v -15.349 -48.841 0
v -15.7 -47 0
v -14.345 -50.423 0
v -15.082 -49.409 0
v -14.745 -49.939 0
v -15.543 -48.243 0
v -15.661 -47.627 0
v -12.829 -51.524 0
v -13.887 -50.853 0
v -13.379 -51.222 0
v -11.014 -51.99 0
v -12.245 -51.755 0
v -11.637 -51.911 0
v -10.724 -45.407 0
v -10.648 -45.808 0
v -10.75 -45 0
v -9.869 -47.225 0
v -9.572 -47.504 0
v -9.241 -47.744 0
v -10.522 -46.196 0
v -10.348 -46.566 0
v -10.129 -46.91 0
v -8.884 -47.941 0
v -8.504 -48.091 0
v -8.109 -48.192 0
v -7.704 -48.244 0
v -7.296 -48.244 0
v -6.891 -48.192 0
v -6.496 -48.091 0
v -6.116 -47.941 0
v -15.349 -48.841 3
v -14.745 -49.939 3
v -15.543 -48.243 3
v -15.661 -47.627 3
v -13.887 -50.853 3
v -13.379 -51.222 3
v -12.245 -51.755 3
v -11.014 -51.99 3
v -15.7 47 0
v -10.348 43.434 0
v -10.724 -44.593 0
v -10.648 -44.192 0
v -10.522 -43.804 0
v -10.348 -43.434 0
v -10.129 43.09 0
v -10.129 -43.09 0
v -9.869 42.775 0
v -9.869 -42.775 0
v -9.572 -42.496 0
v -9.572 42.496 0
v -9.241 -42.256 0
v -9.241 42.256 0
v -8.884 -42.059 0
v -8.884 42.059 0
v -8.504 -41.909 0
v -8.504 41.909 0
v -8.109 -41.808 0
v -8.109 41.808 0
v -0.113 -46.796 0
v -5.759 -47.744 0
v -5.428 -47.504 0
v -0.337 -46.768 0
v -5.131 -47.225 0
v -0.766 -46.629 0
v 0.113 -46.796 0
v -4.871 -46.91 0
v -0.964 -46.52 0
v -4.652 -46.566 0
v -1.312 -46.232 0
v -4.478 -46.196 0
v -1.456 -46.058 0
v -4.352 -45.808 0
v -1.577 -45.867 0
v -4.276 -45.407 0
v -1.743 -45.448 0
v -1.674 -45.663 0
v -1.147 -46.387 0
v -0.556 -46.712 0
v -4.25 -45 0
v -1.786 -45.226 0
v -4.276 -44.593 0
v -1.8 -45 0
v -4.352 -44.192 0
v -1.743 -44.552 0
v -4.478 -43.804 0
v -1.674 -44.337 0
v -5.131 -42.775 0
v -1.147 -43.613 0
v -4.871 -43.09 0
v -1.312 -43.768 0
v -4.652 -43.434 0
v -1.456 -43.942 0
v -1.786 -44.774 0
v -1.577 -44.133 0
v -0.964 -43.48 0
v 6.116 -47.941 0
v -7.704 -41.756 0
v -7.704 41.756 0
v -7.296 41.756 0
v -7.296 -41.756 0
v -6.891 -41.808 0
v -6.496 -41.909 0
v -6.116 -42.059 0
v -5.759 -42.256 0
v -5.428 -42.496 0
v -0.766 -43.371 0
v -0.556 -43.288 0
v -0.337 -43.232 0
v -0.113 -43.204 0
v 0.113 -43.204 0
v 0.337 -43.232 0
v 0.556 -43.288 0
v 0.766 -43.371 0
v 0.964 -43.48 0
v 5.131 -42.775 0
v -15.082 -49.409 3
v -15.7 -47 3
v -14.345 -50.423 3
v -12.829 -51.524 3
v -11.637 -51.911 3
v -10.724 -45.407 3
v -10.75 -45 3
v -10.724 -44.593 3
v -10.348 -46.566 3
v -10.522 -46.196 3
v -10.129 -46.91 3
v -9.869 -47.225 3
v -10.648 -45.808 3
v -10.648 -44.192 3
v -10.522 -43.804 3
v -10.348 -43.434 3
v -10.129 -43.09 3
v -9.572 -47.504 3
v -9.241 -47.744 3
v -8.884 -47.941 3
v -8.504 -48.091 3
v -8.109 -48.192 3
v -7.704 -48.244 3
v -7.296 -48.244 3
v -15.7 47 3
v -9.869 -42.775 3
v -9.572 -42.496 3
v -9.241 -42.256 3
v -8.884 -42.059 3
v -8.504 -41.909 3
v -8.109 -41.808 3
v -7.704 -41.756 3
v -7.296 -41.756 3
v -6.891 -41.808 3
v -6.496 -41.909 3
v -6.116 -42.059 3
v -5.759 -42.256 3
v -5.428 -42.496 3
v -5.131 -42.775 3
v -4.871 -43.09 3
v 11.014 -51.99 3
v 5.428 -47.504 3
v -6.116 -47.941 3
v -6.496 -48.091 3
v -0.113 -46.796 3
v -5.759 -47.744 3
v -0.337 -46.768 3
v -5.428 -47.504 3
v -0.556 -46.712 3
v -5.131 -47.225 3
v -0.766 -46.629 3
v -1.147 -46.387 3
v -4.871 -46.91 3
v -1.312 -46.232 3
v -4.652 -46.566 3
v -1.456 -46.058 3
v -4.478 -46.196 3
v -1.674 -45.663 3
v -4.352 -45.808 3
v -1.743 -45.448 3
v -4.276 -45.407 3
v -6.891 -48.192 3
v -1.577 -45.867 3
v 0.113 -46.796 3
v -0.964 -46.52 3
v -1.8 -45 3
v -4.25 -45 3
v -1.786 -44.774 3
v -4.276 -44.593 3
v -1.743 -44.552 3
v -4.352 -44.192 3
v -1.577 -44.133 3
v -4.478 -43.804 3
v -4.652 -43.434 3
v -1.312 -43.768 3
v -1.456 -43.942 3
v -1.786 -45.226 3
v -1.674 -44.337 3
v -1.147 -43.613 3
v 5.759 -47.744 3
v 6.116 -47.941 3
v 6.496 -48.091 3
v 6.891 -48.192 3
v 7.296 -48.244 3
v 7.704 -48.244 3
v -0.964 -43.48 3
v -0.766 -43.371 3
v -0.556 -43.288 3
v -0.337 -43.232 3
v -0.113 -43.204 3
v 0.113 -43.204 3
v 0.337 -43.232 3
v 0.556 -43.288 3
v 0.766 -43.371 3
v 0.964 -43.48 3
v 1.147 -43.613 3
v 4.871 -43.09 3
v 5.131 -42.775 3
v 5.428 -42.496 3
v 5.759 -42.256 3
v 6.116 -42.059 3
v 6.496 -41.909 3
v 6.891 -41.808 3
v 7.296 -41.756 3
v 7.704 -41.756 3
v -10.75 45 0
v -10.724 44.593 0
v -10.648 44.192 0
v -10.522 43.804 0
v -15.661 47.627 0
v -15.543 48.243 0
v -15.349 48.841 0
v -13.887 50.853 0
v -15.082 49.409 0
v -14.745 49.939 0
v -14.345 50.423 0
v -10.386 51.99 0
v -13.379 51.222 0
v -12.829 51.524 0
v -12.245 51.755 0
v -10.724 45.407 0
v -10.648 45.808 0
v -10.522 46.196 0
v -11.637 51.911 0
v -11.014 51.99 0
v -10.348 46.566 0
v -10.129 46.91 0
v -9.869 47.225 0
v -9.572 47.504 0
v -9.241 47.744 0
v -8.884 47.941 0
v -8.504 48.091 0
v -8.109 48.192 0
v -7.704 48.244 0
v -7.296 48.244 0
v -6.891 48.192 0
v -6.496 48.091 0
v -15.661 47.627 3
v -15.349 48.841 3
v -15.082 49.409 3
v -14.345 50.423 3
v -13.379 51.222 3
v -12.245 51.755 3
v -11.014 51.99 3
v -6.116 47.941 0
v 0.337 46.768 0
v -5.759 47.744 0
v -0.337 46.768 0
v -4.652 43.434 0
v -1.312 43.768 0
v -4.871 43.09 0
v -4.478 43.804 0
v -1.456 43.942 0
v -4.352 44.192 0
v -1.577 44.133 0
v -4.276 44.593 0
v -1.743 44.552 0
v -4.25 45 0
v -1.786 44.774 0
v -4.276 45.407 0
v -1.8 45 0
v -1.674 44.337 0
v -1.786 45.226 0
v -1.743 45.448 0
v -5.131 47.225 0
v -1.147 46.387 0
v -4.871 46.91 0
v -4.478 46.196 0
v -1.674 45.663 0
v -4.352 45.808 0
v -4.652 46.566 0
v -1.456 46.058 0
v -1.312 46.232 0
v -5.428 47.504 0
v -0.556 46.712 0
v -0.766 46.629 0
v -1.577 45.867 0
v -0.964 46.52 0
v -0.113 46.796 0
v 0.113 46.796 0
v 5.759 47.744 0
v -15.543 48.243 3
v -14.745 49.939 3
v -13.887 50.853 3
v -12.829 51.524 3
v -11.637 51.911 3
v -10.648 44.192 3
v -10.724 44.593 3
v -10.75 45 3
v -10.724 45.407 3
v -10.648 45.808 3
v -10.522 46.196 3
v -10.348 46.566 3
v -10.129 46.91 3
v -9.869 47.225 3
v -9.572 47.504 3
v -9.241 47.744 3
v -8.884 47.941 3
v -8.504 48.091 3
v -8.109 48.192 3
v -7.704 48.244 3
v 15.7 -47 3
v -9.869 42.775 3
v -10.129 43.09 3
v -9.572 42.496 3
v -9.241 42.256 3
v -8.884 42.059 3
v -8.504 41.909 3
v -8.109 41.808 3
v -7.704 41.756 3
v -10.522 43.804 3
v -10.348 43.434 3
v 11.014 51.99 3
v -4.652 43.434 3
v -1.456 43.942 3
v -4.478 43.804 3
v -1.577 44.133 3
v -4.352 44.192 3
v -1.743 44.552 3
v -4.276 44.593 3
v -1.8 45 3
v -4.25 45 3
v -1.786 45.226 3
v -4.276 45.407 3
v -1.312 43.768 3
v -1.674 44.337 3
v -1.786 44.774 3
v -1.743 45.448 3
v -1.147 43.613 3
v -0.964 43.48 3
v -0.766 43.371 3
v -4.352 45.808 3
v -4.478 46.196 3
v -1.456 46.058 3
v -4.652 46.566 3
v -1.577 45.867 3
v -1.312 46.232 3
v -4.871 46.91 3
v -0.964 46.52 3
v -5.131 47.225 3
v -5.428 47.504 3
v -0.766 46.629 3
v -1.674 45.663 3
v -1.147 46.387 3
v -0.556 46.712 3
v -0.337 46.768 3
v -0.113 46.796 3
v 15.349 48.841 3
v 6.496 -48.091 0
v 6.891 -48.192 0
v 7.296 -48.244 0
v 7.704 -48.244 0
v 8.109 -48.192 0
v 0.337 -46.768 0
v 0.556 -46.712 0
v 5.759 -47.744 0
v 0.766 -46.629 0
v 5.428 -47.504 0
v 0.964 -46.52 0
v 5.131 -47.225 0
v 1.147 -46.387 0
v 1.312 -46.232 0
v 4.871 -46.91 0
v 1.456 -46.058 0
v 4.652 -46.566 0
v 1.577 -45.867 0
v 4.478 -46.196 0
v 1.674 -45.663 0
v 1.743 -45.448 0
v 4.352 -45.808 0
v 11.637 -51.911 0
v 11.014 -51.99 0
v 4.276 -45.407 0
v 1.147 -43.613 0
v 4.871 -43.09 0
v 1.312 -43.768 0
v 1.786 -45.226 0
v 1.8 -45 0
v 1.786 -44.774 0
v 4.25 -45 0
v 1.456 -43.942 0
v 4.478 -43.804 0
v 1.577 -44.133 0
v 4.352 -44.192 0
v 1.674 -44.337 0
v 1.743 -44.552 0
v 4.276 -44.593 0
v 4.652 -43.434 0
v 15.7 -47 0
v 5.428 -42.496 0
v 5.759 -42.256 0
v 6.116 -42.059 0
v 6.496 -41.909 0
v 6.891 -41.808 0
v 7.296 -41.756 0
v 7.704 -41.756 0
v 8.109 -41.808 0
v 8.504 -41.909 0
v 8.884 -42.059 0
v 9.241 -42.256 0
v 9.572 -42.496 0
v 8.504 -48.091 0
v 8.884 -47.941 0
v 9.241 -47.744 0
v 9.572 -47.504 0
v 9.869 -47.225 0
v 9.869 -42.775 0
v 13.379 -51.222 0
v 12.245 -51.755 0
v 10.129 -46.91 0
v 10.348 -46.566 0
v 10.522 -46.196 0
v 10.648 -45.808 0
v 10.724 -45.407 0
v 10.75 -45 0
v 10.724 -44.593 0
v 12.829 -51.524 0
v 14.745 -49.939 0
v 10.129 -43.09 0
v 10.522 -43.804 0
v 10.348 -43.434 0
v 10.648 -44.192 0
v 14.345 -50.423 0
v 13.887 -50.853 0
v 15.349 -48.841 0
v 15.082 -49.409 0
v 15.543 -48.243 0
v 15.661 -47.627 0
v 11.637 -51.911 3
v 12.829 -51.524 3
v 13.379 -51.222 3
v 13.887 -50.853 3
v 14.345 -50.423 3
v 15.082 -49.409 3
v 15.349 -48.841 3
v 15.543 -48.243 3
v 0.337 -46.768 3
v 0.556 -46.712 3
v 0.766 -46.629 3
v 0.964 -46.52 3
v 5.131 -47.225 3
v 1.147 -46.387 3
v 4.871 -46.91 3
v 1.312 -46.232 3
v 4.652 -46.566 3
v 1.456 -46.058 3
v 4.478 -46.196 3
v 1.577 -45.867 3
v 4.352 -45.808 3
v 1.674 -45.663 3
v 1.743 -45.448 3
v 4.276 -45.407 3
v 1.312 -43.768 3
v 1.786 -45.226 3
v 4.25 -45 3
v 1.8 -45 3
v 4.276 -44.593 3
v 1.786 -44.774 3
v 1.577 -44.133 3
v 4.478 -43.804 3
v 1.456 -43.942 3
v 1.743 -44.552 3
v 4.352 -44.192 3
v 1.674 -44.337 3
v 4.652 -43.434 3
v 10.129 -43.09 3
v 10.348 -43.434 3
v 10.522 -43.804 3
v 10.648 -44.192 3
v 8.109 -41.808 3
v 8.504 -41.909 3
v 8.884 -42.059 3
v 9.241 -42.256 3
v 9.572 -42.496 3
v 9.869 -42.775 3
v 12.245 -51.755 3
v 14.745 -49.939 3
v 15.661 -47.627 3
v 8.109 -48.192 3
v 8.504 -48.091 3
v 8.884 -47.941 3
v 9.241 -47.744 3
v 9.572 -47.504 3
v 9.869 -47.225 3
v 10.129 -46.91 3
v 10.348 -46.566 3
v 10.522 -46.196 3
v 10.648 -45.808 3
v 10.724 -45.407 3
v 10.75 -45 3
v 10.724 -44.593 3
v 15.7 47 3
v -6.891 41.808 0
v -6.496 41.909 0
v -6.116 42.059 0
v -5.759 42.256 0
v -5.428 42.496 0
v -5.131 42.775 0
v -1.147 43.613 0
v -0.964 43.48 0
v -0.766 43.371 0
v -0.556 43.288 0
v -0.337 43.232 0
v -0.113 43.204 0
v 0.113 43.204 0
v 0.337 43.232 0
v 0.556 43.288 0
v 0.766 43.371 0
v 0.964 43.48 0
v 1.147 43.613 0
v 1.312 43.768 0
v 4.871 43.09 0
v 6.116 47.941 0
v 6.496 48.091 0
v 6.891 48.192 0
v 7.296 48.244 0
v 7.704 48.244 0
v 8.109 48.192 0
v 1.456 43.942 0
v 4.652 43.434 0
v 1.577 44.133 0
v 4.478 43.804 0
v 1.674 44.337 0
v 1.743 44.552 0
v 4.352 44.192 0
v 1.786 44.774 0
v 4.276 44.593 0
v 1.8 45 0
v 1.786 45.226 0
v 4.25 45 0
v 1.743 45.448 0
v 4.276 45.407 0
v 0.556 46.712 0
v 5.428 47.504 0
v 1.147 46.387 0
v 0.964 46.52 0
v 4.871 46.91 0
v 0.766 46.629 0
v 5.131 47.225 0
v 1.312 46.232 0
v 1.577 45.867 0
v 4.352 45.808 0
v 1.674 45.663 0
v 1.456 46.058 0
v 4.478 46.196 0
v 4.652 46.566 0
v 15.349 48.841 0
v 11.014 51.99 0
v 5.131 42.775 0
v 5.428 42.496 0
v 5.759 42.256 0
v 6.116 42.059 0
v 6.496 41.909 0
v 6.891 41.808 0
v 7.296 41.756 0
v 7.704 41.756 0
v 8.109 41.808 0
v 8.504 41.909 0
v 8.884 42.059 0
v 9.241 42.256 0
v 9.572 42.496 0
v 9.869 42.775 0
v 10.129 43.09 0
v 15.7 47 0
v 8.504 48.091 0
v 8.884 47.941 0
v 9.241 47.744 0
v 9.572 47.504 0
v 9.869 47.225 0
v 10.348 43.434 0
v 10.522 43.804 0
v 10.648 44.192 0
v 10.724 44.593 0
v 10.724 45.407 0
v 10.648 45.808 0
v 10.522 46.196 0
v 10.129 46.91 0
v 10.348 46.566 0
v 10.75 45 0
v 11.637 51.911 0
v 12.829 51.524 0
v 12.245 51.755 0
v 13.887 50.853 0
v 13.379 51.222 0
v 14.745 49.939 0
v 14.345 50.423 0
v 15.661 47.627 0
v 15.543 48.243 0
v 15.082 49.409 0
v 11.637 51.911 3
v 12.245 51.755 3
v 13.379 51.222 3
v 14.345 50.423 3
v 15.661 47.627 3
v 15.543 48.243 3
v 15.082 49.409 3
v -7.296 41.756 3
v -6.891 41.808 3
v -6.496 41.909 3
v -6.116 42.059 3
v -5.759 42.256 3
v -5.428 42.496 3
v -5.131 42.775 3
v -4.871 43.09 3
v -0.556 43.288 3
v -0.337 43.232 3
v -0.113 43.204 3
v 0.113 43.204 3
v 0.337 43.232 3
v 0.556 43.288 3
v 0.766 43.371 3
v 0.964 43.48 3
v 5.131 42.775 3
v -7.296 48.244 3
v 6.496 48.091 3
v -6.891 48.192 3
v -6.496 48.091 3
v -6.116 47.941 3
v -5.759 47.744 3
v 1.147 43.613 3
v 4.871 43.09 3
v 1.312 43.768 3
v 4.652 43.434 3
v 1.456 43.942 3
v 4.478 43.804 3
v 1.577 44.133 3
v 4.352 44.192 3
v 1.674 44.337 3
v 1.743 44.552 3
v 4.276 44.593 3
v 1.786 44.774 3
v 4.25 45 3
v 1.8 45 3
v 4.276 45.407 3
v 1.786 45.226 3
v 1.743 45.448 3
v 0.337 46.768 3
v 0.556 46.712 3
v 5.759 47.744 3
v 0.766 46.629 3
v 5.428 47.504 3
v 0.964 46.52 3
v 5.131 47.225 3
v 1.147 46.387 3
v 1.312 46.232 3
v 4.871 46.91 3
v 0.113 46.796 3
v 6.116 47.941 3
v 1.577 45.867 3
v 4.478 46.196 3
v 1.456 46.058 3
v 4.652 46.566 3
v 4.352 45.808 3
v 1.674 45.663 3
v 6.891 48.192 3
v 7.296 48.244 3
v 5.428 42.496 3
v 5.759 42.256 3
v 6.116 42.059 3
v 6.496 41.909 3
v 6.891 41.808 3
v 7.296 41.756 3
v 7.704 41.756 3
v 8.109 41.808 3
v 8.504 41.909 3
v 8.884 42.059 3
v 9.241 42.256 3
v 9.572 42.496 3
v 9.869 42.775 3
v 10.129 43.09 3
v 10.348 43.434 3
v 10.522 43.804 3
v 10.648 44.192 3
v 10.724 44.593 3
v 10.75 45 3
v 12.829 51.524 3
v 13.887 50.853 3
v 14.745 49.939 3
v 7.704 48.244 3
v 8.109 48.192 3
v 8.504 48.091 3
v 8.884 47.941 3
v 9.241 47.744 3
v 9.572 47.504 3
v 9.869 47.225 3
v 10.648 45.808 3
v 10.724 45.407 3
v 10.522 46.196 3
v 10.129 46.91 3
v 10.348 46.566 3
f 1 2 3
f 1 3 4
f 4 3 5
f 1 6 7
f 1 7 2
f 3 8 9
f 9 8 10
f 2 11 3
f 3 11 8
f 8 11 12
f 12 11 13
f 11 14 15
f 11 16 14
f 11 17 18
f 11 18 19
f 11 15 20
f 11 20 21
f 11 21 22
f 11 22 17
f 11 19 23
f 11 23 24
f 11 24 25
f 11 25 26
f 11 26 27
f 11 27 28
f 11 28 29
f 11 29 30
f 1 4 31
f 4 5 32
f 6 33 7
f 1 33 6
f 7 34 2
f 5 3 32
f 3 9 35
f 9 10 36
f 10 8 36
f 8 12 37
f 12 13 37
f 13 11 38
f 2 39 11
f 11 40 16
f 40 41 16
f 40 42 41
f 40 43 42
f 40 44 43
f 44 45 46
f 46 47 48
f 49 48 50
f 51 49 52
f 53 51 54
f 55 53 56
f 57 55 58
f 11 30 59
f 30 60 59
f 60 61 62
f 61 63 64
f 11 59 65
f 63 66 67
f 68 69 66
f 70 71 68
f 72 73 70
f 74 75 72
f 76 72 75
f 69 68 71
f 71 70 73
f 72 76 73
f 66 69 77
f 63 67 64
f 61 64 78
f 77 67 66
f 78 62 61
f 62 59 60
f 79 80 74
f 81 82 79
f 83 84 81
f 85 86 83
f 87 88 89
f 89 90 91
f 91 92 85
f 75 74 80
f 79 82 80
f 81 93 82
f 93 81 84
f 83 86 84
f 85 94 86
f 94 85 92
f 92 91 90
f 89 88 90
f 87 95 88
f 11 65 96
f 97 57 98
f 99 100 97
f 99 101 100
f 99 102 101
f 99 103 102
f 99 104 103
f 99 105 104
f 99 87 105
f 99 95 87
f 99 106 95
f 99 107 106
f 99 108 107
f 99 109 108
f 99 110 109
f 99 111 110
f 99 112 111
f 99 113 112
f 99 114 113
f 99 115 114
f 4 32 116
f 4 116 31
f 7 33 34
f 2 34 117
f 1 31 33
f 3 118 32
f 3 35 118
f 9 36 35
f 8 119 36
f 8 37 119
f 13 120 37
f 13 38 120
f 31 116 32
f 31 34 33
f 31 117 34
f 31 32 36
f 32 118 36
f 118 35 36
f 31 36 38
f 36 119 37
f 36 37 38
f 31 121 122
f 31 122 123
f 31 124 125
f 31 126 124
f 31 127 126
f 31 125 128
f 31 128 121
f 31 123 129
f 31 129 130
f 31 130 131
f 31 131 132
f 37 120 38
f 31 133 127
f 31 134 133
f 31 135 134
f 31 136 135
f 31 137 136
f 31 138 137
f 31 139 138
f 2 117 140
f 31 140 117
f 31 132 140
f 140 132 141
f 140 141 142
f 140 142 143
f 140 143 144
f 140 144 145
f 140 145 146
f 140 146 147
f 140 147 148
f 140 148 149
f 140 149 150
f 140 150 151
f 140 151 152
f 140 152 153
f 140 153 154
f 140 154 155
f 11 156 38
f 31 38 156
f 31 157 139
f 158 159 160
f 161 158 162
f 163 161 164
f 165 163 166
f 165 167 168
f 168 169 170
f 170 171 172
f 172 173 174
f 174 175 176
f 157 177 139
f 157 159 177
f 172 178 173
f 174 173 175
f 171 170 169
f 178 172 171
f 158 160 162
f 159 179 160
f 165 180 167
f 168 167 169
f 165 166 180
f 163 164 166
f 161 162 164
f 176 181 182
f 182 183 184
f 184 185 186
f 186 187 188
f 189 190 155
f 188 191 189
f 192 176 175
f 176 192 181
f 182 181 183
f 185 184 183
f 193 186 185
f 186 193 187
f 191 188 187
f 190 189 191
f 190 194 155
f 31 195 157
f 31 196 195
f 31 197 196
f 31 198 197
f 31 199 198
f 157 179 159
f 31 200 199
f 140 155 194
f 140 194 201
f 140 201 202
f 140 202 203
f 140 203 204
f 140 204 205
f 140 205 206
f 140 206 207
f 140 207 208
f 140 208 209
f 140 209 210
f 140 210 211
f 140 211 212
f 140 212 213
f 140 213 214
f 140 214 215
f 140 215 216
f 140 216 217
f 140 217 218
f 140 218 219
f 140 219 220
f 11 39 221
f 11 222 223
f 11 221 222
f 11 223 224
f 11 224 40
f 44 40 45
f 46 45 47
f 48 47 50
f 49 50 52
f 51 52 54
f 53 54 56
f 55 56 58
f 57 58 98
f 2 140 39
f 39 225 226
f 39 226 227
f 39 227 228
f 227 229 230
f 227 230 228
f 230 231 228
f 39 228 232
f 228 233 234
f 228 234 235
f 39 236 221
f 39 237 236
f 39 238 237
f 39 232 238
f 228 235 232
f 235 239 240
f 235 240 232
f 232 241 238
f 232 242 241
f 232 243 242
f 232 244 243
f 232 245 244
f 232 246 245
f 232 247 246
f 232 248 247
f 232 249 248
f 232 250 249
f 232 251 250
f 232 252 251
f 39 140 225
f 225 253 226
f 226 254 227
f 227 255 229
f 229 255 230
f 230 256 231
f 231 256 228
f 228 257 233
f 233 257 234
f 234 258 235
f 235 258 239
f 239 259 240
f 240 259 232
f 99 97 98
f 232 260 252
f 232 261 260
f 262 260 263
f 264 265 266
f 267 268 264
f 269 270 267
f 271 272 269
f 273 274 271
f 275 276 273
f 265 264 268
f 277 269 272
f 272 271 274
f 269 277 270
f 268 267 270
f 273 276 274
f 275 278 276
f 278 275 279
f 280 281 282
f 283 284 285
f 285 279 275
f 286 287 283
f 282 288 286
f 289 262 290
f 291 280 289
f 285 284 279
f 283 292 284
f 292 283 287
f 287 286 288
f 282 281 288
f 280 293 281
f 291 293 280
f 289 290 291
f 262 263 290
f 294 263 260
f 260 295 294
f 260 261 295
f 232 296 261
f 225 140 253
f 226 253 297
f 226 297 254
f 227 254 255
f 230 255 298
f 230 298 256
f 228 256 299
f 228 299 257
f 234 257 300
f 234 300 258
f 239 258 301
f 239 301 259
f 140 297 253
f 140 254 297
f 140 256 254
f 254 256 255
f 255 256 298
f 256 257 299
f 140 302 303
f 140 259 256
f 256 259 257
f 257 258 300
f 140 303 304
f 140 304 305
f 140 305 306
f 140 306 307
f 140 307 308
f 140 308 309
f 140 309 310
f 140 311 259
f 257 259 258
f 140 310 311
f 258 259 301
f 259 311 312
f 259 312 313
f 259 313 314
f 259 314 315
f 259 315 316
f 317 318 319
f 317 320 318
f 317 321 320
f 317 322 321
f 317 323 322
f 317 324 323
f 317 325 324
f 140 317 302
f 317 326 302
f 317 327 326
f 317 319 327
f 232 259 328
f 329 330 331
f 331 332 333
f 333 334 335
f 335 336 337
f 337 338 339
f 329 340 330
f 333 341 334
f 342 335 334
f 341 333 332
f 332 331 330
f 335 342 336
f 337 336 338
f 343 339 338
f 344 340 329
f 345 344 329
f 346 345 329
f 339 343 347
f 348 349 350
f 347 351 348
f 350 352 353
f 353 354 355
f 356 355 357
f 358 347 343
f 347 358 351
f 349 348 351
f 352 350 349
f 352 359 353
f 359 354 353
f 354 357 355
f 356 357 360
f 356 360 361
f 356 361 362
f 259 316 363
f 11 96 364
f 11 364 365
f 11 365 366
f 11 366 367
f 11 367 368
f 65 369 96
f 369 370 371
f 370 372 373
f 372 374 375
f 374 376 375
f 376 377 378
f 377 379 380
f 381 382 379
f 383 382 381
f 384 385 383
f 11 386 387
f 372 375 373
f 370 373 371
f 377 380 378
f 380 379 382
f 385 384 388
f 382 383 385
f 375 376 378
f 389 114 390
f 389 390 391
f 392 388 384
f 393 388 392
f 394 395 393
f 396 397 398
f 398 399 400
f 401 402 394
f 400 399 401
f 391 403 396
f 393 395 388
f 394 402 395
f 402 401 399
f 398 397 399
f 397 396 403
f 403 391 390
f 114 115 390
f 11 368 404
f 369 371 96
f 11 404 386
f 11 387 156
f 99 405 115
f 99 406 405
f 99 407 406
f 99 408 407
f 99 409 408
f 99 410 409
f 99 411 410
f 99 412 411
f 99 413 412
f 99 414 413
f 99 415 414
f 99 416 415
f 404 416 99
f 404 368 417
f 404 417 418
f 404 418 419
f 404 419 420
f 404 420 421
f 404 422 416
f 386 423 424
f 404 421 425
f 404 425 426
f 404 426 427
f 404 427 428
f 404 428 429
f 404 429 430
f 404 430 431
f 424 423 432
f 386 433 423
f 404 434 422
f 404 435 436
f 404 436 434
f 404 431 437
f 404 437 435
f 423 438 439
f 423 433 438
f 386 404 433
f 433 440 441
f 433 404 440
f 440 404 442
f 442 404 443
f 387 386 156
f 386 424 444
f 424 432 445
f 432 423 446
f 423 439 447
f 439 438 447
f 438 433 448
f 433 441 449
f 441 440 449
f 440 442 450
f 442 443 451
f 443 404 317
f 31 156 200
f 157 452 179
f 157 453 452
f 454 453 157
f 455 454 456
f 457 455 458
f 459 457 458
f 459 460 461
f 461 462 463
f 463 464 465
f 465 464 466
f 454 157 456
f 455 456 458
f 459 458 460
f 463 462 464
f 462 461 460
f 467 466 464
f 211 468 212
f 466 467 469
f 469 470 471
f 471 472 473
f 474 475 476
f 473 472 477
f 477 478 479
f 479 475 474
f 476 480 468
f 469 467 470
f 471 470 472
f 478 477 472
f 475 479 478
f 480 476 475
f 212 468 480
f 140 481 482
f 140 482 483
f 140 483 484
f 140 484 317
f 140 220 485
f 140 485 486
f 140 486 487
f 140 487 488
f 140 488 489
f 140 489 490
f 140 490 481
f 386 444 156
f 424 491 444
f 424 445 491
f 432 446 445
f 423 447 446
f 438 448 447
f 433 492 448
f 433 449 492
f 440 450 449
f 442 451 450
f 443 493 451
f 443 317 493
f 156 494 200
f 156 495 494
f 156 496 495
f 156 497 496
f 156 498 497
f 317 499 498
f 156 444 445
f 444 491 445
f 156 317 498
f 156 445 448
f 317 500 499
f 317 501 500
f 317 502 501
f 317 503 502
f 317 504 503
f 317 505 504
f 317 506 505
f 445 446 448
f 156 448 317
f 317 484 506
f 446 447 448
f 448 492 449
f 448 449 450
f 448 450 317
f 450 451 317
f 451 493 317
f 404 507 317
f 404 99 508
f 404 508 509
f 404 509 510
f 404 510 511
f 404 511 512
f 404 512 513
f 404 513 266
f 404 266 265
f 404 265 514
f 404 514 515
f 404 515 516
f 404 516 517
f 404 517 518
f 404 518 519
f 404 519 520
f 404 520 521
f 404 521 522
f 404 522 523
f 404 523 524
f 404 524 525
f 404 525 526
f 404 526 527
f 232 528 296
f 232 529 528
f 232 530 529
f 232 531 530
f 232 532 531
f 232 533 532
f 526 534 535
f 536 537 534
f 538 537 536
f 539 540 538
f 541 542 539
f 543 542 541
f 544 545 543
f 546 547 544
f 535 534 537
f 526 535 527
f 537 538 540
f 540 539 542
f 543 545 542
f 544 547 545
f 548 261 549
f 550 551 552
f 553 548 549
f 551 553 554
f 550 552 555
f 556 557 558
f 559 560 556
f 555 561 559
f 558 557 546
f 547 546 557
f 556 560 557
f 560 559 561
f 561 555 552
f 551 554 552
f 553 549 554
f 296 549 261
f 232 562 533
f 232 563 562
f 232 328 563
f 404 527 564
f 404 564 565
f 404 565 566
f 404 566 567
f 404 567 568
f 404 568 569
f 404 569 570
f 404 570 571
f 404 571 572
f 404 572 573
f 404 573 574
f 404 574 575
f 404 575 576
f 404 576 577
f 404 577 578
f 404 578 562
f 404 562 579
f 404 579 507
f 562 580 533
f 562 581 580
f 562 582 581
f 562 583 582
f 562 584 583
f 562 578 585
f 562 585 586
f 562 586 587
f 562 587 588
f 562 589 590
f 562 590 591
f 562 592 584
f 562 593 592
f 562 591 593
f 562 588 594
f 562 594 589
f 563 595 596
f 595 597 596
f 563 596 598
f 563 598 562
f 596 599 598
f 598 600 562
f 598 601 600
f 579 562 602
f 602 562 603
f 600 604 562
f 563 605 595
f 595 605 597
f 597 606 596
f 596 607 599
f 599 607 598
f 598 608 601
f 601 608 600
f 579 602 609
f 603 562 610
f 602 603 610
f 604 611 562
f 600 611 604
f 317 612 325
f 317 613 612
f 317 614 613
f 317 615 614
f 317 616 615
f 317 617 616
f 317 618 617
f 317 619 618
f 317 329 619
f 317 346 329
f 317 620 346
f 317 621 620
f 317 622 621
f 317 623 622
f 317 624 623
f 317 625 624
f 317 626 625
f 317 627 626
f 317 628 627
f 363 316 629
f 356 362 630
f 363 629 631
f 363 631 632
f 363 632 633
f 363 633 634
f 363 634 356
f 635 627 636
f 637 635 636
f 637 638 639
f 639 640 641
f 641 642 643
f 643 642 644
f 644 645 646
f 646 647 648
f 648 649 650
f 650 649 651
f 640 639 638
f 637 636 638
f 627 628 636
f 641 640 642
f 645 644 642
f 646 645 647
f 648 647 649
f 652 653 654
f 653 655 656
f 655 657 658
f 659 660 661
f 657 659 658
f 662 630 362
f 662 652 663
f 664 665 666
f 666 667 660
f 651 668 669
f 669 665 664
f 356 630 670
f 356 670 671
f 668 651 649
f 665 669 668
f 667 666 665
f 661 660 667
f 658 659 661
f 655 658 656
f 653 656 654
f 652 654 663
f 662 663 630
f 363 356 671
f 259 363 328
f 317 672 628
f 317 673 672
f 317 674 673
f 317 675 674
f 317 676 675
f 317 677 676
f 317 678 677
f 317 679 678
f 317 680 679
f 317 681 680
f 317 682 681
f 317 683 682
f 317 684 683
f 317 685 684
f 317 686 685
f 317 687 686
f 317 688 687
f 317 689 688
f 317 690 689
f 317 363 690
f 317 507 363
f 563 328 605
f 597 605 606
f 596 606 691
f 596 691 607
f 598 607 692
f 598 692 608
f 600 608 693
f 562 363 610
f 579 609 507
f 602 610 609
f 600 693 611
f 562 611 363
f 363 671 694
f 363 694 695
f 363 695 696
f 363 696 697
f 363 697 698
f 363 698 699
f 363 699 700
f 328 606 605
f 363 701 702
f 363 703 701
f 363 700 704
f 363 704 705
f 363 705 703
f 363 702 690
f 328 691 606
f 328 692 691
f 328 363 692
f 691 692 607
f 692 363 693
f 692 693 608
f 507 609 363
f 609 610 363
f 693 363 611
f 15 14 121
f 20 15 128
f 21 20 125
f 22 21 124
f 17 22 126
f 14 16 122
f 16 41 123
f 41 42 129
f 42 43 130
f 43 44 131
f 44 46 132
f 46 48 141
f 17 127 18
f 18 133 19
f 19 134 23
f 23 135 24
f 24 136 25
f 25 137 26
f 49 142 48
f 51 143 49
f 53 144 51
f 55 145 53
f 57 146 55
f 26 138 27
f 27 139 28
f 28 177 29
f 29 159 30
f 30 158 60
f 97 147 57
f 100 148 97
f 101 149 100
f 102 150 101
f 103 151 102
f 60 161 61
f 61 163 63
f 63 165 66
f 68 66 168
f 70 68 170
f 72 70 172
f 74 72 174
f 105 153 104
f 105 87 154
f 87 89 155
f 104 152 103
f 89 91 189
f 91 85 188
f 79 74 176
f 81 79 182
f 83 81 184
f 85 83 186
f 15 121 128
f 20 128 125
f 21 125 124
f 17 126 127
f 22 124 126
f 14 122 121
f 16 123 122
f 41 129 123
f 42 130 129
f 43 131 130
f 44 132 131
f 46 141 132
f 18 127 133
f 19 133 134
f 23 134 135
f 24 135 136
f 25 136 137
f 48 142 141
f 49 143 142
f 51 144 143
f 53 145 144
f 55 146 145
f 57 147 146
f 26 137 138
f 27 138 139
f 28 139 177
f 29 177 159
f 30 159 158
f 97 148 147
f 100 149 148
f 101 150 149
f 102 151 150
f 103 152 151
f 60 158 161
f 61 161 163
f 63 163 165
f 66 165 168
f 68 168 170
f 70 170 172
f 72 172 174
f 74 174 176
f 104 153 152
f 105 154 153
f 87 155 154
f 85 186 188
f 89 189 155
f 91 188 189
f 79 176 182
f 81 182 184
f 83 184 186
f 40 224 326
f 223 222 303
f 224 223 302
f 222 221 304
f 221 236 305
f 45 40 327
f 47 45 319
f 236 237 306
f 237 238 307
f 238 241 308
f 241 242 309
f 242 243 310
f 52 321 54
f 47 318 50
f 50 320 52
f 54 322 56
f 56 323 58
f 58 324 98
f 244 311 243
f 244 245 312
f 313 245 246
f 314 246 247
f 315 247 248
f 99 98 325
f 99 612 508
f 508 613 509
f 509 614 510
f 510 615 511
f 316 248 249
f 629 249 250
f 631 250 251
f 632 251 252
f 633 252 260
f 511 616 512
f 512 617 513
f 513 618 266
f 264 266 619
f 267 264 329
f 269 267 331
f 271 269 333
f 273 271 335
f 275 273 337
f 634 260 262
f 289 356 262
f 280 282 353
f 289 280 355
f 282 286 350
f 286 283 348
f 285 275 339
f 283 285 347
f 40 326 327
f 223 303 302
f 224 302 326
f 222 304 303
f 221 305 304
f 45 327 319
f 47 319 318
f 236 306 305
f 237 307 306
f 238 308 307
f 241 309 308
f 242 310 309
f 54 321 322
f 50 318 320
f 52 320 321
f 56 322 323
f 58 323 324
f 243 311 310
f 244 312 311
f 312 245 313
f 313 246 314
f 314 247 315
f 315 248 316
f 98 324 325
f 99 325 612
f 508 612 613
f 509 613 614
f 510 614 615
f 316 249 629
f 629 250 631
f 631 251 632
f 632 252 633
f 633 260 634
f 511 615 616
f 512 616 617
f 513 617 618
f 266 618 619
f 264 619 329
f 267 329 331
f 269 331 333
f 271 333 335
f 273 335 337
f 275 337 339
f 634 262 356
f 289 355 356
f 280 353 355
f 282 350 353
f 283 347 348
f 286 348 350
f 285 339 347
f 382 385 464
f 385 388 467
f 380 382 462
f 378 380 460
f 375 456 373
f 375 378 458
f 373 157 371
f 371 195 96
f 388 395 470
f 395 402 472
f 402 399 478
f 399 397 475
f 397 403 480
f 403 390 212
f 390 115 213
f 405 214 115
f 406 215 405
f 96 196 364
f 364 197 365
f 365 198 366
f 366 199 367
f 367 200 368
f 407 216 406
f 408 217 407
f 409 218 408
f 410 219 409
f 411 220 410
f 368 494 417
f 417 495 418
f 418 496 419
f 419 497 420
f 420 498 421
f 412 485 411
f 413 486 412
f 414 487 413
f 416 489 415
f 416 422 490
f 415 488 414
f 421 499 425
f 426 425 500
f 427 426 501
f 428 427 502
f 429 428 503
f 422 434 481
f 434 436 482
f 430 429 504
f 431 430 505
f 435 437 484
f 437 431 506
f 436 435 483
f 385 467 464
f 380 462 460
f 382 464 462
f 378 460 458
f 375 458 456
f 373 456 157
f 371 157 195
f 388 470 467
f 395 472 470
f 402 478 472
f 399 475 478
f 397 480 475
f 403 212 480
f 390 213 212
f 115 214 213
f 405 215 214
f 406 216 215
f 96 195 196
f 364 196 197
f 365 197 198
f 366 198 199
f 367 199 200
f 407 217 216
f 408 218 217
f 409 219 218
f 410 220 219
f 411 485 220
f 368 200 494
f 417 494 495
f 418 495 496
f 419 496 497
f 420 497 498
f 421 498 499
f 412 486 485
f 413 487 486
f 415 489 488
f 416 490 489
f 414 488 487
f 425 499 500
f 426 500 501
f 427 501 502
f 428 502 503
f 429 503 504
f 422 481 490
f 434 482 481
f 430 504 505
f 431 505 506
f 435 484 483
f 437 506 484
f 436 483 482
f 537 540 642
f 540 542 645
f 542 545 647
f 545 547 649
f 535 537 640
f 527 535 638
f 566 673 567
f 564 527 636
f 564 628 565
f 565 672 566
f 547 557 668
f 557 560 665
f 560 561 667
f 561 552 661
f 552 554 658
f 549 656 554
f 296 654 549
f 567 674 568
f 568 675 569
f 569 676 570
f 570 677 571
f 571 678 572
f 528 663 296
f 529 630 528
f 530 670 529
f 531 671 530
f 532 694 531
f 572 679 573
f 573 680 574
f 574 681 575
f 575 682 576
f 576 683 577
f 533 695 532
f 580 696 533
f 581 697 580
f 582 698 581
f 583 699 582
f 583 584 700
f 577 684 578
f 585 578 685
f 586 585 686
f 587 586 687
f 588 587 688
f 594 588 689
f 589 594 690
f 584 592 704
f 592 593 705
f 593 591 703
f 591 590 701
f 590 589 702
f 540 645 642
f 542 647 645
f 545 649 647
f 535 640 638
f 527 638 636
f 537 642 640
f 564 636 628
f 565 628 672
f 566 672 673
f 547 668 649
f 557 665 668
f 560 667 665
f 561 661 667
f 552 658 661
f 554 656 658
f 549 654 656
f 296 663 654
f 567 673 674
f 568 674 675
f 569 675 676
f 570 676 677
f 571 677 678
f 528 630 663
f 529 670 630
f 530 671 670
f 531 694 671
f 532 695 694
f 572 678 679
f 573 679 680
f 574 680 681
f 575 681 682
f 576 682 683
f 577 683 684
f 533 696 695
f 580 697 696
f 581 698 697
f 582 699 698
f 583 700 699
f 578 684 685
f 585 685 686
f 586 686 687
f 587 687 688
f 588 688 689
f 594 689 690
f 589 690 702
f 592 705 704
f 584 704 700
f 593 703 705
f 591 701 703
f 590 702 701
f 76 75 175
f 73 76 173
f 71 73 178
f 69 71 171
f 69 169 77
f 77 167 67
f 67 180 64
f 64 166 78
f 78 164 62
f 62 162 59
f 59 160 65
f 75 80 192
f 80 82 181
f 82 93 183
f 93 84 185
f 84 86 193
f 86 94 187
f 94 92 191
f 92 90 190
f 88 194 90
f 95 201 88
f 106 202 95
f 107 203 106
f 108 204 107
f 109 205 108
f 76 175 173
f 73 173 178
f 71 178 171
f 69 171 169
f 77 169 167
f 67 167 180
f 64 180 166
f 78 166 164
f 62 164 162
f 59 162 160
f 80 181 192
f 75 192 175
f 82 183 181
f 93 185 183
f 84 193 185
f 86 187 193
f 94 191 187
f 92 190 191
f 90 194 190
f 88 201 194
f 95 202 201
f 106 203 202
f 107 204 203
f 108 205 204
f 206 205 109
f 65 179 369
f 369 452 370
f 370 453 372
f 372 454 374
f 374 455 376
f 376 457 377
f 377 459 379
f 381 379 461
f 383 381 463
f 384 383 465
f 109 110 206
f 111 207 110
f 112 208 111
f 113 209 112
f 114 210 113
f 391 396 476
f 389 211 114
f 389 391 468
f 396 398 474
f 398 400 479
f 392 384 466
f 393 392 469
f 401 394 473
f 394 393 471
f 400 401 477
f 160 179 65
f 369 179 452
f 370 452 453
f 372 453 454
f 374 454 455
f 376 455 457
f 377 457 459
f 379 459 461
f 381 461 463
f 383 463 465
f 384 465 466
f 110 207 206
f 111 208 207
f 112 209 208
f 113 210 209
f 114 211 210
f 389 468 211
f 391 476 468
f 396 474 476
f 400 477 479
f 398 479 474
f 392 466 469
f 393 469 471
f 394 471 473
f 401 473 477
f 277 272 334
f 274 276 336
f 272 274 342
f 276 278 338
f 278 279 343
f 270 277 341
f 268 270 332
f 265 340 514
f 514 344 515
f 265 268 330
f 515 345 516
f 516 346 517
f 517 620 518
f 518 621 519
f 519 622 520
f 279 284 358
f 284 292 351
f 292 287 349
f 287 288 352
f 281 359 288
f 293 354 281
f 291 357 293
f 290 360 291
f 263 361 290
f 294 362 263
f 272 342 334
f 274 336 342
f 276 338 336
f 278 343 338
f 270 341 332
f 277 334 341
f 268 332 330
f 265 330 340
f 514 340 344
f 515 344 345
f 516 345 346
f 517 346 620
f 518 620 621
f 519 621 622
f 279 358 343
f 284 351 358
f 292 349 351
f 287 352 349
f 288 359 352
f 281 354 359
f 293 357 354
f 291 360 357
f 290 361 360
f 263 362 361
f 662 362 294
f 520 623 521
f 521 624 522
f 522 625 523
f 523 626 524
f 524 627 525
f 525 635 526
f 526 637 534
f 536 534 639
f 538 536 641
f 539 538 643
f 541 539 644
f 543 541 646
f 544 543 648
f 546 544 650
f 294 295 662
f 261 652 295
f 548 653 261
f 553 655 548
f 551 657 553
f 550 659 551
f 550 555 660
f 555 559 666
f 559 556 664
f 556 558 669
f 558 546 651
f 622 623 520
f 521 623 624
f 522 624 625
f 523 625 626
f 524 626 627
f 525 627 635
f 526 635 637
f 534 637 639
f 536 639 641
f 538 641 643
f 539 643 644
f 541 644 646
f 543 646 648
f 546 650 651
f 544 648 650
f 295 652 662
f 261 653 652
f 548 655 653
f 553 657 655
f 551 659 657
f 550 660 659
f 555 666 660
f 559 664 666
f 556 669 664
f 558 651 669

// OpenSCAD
$fn = 50;

difference() {
	union() {
		hull() {
			translate(v = [-10.7, 47.0, 0]) {
				cylinder(h = 3, r = 5);
			}
			translate(v = [10.7, 47.0, 0]) {
				cylinder(h = 3, r = 5);
			}
			translate(v = [-10.7, -47.0, 0]) {
				cylinder(h = 3, r = 5);
			}
			translate(v = [10.7, -47.0, 0]) {
				cylinder(h = 3, r = 5);
			}
		}
	}
	union() {
		translate(v = [-7.5, -45.0, -1]) {
			cylinder(h = 5, r = 3.25);
		}
		translate(v = [-7.5, 45.0, -1]) {
			cylinder(h = 5, r = 3.25);
		}
		translate(v = [7.5, -45.0, -1]) {
			cylinder(h = 5, r = 3.25);
		}
		translate(v = [7.5, 45.0, -1]) {
			cylinder(h = 5, r = 3.25);
		}
		translate(v = [0.0, -45.0, -1]) {
			cylinder(h = 5, r = 1.8);
		}
		translate(v = [0.0, 45.0, -1]) {
			cylinder(h = 5, r = 1.8);
		}
	}
}
